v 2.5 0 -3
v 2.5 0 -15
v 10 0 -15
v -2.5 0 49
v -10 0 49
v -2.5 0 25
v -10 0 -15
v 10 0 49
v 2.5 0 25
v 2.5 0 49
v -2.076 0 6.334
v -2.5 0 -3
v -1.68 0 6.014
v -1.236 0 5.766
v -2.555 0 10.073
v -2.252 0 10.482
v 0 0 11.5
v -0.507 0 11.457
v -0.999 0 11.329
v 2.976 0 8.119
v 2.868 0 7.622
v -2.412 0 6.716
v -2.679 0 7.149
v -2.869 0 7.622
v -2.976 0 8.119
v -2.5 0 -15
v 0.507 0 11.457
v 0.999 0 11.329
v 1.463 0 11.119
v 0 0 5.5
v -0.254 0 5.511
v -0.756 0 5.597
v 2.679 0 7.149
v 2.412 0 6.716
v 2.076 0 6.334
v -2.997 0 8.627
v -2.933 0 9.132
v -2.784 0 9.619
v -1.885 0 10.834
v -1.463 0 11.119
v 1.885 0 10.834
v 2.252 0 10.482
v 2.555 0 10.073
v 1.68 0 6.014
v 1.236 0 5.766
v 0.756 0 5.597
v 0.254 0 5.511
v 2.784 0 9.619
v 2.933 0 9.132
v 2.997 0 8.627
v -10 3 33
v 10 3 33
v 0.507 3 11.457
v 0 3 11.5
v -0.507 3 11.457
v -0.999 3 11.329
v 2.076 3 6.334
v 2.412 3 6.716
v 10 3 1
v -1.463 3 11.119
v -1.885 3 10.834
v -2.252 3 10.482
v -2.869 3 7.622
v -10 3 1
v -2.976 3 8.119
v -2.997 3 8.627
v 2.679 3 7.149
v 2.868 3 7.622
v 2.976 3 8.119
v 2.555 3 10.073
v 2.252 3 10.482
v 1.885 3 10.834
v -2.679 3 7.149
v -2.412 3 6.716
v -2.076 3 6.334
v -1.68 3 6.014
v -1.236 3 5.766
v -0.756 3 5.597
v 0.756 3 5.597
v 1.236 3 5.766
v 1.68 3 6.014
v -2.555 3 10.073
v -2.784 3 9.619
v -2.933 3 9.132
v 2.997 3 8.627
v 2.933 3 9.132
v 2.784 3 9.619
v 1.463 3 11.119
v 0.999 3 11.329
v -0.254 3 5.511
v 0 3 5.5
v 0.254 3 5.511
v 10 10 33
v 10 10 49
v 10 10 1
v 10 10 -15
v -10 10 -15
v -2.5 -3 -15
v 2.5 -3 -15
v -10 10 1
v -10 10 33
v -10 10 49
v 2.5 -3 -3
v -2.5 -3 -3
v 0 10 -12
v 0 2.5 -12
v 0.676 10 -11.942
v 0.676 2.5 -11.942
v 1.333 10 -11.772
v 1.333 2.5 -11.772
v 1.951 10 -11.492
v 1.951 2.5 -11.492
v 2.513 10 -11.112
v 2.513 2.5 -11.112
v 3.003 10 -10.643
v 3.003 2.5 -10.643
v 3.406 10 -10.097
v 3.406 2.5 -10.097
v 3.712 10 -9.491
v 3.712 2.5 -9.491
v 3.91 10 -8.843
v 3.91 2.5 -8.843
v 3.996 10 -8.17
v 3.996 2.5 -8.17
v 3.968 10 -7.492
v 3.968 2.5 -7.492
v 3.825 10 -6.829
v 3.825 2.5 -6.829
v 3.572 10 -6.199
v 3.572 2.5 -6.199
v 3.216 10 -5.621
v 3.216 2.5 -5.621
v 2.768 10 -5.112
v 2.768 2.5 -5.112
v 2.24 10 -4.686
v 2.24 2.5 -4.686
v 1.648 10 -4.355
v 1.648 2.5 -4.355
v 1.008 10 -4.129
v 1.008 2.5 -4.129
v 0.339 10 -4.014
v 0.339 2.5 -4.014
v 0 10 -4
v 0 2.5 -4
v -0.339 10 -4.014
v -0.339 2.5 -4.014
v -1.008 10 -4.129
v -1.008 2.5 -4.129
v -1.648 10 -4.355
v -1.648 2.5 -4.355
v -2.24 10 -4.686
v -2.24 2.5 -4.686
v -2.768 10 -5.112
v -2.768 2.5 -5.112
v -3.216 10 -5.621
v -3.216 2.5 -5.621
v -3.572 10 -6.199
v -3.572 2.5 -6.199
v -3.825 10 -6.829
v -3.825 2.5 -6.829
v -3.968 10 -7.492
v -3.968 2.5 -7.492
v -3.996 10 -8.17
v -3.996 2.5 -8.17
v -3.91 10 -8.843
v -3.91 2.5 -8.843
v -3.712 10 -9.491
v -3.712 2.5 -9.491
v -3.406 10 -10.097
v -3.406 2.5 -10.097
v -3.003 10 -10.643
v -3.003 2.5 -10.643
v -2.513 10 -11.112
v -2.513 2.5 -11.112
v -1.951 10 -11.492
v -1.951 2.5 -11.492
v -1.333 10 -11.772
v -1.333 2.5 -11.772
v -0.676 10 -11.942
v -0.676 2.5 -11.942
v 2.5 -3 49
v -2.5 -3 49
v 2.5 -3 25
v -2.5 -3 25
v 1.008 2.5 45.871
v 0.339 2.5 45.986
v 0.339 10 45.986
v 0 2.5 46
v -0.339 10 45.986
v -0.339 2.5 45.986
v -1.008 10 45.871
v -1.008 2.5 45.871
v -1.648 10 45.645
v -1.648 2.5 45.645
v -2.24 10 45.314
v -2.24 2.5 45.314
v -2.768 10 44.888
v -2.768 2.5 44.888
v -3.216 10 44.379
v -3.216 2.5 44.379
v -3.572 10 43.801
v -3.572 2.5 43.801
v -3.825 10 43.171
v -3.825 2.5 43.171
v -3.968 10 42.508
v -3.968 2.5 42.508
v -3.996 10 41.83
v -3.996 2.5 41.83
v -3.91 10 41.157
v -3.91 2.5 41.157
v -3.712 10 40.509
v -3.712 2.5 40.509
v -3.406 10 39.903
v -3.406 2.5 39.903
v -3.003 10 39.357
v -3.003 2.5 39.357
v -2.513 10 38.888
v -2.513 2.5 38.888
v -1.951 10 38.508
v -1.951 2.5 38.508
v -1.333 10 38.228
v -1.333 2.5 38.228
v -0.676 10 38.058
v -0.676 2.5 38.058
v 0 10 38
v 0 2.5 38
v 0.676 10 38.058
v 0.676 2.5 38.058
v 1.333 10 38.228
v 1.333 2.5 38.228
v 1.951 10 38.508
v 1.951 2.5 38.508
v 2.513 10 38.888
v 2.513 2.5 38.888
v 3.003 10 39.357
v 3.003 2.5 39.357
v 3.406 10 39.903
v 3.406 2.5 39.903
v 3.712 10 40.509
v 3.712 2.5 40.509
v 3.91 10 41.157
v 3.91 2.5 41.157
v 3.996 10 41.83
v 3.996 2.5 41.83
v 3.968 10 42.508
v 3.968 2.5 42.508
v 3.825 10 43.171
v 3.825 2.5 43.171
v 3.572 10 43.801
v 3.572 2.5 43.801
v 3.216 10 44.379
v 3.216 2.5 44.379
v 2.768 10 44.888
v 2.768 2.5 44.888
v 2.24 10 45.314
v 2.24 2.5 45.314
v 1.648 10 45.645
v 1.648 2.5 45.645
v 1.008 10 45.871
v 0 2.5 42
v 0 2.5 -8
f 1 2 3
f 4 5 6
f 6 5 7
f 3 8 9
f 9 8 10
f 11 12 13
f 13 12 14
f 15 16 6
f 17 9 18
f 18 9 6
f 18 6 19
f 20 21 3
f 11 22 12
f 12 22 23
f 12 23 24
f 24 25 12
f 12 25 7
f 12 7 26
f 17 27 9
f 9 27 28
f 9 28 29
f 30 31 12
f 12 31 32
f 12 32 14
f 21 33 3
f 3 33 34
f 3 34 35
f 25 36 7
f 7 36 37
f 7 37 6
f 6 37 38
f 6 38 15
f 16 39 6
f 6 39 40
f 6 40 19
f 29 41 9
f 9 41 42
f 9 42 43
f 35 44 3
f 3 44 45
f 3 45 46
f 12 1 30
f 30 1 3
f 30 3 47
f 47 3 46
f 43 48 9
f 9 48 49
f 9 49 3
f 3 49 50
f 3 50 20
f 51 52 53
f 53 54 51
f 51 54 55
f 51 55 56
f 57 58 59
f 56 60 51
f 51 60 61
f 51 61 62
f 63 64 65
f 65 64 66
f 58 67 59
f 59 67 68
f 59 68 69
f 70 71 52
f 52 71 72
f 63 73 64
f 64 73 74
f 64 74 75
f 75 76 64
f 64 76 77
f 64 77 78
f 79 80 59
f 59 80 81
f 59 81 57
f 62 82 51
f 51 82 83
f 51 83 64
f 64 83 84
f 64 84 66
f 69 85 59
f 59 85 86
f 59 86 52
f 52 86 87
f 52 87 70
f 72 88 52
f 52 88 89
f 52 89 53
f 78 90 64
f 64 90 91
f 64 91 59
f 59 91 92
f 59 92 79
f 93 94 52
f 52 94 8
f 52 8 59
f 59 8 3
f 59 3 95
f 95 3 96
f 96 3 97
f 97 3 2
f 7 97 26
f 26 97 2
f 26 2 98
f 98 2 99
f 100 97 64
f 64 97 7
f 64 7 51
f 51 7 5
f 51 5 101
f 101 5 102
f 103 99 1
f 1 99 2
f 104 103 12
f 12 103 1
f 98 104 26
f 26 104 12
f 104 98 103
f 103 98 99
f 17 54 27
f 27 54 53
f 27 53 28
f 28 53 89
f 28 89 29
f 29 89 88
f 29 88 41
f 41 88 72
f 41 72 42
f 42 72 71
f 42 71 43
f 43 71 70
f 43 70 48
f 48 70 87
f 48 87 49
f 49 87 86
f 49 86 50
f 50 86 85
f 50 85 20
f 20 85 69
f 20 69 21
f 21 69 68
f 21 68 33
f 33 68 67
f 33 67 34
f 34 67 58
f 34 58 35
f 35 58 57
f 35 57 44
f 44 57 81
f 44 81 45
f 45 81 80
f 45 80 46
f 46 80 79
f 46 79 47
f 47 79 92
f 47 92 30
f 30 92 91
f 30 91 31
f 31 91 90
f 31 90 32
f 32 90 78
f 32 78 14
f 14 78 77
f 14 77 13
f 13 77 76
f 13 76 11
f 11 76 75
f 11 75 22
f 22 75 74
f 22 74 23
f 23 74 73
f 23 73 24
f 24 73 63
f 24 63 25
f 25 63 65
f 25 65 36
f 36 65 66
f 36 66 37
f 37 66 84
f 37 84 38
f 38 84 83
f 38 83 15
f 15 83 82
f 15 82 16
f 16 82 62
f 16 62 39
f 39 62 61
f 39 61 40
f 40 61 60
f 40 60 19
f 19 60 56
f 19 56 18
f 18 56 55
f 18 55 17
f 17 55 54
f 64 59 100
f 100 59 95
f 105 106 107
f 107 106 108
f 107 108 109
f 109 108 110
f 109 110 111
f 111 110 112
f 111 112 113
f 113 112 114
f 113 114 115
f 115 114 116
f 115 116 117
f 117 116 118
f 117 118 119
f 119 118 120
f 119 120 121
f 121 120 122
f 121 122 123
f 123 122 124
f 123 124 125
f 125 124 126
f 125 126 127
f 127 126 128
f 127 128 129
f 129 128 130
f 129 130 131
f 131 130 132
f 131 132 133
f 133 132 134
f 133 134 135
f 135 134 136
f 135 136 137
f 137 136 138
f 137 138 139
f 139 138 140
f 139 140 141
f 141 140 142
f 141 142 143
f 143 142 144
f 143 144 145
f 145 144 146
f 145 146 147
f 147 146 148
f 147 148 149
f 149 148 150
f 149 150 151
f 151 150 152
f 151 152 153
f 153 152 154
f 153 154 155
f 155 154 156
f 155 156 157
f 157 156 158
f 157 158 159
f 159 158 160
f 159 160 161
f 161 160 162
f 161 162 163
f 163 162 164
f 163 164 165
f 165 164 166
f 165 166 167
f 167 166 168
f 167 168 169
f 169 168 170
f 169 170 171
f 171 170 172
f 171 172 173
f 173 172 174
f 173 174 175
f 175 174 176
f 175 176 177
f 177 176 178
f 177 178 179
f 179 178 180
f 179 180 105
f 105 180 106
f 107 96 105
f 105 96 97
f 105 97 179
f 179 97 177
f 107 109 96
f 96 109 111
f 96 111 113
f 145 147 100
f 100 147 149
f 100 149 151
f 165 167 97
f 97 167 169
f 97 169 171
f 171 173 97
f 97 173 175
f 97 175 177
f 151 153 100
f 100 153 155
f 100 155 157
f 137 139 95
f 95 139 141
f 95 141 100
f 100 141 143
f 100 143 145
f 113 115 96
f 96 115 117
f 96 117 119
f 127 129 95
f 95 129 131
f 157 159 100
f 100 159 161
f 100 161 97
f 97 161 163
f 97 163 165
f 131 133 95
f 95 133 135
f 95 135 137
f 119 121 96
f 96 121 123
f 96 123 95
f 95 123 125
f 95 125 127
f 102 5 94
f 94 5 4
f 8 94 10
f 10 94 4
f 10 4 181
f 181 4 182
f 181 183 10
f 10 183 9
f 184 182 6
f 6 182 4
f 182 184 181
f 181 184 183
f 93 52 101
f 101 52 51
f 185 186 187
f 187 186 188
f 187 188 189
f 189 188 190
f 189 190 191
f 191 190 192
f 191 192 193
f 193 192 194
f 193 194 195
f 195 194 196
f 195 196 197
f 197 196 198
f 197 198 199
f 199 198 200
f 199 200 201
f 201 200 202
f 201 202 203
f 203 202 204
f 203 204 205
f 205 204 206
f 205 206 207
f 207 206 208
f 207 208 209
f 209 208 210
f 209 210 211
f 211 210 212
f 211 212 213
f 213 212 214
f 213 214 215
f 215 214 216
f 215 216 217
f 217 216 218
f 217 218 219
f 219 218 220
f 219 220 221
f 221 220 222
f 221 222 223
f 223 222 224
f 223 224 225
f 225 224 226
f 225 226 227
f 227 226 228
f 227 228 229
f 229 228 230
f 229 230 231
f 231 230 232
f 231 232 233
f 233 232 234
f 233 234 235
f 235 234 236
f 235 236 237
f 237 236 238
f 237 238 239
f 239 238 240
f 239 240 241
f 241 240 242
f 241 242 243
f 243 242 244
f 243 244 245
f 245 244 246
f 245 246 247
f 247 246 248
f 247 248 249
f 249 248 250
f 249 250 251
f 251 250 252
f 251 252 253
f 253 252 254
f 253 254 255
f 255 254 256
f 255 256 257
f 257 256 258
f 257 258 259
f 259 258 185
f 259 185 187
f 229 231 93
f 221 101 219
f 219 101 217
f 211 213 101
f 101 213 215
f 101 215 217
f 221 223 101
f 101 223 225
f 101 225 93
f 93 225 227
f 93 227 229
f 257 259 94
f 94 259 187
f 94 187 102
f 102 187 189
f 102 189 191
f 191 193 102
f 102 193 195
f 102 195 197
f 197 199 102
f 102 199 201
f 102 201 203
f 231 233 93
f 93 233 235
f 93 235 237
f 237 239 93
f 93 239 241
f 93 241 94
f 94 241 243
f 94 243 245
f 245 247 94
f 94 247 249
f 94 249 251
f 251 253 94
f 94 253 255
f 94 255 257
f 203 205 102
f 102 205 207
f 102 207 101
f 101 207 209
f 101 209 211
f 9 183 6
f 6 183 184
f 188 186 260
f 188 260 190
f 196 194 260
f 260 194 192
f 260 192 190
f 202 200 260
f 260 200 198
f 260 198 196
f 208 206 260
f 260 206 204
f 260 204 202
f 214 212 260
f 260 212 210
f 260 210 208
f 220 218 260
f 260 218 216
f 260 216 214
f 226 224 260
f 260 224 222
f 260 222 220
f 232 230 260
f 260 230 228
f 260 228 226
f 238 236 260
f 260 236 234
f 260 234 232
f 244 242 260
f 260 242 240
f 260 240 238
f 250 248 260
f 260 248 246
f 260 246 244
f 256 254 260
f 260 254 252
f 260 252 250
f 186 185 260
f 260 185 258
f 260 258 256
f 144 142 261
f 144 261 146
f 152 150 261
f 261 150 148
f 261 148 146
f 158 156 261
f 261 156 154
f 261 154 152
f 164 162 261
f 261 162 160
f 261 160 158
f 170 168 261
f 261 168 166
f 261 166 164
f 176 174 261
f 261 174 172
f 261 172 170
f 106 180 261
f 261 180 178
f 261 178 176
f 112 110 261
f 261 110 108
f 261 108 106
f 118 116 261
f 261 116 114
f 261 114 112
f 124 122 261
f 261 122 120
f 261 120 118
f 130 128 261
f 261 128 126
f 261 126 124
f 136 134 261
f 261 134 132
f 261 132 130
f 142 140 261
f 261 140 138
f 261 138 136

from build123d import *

# Parameters (mm, degrees)
SKETCH1_W               = 20
SKETCH1_H               = 30
BOSS_EXTRUDE1_DEPTH     = 3
SKETCH2_W               = 5
SKETCH2_H               = 12
BOSS_EXTRUDE2_DEPTH     = 3
SKETCH3_R               = 7
SKETCH3_R_2             = 4
BOSS_EXTRUDE3_DEPTH     = 7
SKETCH4_R               = 4
BOSS_EXTRUDE4_DEPTH     = 1
CUT_EXTRUDE1_DEPTH      = 20.339079606
CUT_EXTRUDE1_DEPTH_BACK = 20.339079606
SKETCH5_R               = 3
SKETCH6_R               = 7
SKETCH6_R_2             = 4
BOSS_EXTRUDE6_DEPTH     = 7
SKETCH7_W               = 20
SKETCH7_H               = 3
BOSS_EXTRUDE7_DEPTH     = 19
SKETCH8_W               = 5
SKETCH8_H               = 3
BOSS_EXTRUDE8_DEPTH     = 12
CUT_EXTRUDE2_START      = -1.5
SKETCH10_R              = 4
CUT_EXTRUDE2_DEPTH      = 1.5


with BuildPart() as part:
    # Sketch1 → Boss-Extrude1 (new body)
    with BuildSketch(Plane(origin=(0, 0, 0), x_dir=(1, 0, 0), z_dir=(0, 1, 0))):
        Rectangle(SKETCH1_W, SKETCH1_H)
    boss_extrude1 = extrude(amount=BOSS_EXTRUDE1_DEPTH)

    # Sketch2 → Boss-Extrude2 (add)
    with BuildSketch(Plane.XZ):
        with Locations((0, -9)):
            Rectangle(SKETCH2_W, SKETCH2_H)
    boss_extrude2 = extrude(amount=BOSS_EXTRUDE2_DEPTH)

    # Sketch3 → Boss-Extrude3 (add)
    with BuildSketch(Plane(origin=(0, 3, 0), x_dir=(1, 0, 0), z_dir=(0, 1, 0))):
        with Locations(Location((0, 8, 0), (0, 0, 90))):
            Circle(SKETCH3_R)
        with Locations(Location((0, 8, 0), (0, 0, 270))):
            Circle(SKETCH3_R_2, mode=Mode.SUBTRACT)
    boss_extrude3 = extrude(amount=BOSS_EXTRUDE3_DEPTH)

    # Sketch4 → Boss-Extrude4 (add)
    with BuildSketch(Plane(origin=(0, 3, 0), x_dir=(1, 0, 0), z_dir=(0, 1, 0))):
        with Locations(Location((0, 8, 0), (0, 0, 270))):
            Circle(SKETCH4_R)
    boss_extrude4 = extrude(amount=BOSS_EXTRUDE4_DEPTH)

    # Sketch5 → Cut-Extrude1 (cut, two sides: drawn at the far end of the back side and taken through both)
    with BuildSketch(Plane(origin=(0, 3, 0), x_dir=(1, 0, 0), z_dir=(0, 1, 0)).offset(-CUT_EXTRUDE1_DEPTH_BACK)):
        with Locations(Location((0, -8.5, 0), (0, 0, 90))):
            Circle(SKETCH5_R)
    extrude(amount=CUT_EXTRUDE1_DEPTH + CUT_EXTRUDE1_DEPTH_BACK, mode=Mode.SUBTRACT)

    # Sketch6 → Boss-Extrude6 (add)
    # profile 1 of 2: a face of its own
    with BuildSketch(Plane(origin=(0, 3, 0), x_dir=(1, 0, 0), z_dir=(0, 1, 0))):
        Polygon((0, 15), (-10, 15), (-10, -1), (10, -1), (10, 15), align=None)
        with BuildLine():
            ThreePointArc((7, 8), (-4.949747468, 3.050252532), (0, 15))
            ThreePointArc((0, 15), (4.949747468, 12.949747468), (7, 8))
        make_face(mode=Mode.SUBTRACT)
    # profile 2 of 2: a face of its own
    with BuildSketch(Plane(origin=(0, 3, 0), x_dir=(1, 0, 0), z_dir=(0, 1, 0))):
        with Locations((0, 8)):
            Circle(SKETCH6_R)
        with Locations(Location((0, 8, 0), (0, 0, 270))):
            Circle(SKETCH6_R_2, mode=Mode.SUBTRACT)
    boss_extrude6 = extrude(amount=BOSS_EXTRUDE6_DEPTH)

    # Sketch7 → Boss-Extrude7 (add)
    with BuildSketch(Plane.XY.offset(15)):
        with Locations((0, 1.5)):
            Rectangle(SKETCH7_W, SKETCH7_H)
    extrude(amount=BOSS_EXTRUDE7_DEPTH)

    # Mirror3: Boss-Extrude1, Boss-Extrude2, Boss-Extrude3, Boss-Extrude4, Boss-Extrude6 across plane
    add(boss_extrude1.mirror(Plane.XY.offset(17)))
    add(boss_extrude2.mirror(Plane.XY.offset(17)))
    add(boss_extrude3.mirror(Plane.XY.offset(17)))
    add(boss_extrude4.mirror(Plane.XY.offset(17)))
    add(boss_extrude6.mirror(Plane.XY.offset(17)))

    # Sketch8 → Boss-Extrude8 (add)
    with BuildSketch(Plane(origin=(0, 0, 37), x_dir=(-1, 0, 0), z_dir=(0, 0, -1))):
        with Locations((0, -1.5)):
            Rectangle(SKETCH8_W, SKETCH8_H)
    extrude(amount=BOSS_EXTRUDE8_DEPTH)

    # Sketch10 → Cut-Extrude2 (cut)
    with BuildSketch(Plane(origin=(0, 4, 0), x_dir=(1, 0, 0), z_dir=(0, 1, 0)).offset(CUT_EXTRUDE2_START)):
        with Locations(Location((0, 8, 0), (0, 0, 270))):
            Circle(SKETCH10_R)
        with Locations(Location((0, -42, 0), (0, 0, 90))):
            Circle(SKETCH10_R)
    extrude(amount=CUT_EXTRUDE2_DEPTH, mode=Mode.SUBTRACT)


solid = part.part
